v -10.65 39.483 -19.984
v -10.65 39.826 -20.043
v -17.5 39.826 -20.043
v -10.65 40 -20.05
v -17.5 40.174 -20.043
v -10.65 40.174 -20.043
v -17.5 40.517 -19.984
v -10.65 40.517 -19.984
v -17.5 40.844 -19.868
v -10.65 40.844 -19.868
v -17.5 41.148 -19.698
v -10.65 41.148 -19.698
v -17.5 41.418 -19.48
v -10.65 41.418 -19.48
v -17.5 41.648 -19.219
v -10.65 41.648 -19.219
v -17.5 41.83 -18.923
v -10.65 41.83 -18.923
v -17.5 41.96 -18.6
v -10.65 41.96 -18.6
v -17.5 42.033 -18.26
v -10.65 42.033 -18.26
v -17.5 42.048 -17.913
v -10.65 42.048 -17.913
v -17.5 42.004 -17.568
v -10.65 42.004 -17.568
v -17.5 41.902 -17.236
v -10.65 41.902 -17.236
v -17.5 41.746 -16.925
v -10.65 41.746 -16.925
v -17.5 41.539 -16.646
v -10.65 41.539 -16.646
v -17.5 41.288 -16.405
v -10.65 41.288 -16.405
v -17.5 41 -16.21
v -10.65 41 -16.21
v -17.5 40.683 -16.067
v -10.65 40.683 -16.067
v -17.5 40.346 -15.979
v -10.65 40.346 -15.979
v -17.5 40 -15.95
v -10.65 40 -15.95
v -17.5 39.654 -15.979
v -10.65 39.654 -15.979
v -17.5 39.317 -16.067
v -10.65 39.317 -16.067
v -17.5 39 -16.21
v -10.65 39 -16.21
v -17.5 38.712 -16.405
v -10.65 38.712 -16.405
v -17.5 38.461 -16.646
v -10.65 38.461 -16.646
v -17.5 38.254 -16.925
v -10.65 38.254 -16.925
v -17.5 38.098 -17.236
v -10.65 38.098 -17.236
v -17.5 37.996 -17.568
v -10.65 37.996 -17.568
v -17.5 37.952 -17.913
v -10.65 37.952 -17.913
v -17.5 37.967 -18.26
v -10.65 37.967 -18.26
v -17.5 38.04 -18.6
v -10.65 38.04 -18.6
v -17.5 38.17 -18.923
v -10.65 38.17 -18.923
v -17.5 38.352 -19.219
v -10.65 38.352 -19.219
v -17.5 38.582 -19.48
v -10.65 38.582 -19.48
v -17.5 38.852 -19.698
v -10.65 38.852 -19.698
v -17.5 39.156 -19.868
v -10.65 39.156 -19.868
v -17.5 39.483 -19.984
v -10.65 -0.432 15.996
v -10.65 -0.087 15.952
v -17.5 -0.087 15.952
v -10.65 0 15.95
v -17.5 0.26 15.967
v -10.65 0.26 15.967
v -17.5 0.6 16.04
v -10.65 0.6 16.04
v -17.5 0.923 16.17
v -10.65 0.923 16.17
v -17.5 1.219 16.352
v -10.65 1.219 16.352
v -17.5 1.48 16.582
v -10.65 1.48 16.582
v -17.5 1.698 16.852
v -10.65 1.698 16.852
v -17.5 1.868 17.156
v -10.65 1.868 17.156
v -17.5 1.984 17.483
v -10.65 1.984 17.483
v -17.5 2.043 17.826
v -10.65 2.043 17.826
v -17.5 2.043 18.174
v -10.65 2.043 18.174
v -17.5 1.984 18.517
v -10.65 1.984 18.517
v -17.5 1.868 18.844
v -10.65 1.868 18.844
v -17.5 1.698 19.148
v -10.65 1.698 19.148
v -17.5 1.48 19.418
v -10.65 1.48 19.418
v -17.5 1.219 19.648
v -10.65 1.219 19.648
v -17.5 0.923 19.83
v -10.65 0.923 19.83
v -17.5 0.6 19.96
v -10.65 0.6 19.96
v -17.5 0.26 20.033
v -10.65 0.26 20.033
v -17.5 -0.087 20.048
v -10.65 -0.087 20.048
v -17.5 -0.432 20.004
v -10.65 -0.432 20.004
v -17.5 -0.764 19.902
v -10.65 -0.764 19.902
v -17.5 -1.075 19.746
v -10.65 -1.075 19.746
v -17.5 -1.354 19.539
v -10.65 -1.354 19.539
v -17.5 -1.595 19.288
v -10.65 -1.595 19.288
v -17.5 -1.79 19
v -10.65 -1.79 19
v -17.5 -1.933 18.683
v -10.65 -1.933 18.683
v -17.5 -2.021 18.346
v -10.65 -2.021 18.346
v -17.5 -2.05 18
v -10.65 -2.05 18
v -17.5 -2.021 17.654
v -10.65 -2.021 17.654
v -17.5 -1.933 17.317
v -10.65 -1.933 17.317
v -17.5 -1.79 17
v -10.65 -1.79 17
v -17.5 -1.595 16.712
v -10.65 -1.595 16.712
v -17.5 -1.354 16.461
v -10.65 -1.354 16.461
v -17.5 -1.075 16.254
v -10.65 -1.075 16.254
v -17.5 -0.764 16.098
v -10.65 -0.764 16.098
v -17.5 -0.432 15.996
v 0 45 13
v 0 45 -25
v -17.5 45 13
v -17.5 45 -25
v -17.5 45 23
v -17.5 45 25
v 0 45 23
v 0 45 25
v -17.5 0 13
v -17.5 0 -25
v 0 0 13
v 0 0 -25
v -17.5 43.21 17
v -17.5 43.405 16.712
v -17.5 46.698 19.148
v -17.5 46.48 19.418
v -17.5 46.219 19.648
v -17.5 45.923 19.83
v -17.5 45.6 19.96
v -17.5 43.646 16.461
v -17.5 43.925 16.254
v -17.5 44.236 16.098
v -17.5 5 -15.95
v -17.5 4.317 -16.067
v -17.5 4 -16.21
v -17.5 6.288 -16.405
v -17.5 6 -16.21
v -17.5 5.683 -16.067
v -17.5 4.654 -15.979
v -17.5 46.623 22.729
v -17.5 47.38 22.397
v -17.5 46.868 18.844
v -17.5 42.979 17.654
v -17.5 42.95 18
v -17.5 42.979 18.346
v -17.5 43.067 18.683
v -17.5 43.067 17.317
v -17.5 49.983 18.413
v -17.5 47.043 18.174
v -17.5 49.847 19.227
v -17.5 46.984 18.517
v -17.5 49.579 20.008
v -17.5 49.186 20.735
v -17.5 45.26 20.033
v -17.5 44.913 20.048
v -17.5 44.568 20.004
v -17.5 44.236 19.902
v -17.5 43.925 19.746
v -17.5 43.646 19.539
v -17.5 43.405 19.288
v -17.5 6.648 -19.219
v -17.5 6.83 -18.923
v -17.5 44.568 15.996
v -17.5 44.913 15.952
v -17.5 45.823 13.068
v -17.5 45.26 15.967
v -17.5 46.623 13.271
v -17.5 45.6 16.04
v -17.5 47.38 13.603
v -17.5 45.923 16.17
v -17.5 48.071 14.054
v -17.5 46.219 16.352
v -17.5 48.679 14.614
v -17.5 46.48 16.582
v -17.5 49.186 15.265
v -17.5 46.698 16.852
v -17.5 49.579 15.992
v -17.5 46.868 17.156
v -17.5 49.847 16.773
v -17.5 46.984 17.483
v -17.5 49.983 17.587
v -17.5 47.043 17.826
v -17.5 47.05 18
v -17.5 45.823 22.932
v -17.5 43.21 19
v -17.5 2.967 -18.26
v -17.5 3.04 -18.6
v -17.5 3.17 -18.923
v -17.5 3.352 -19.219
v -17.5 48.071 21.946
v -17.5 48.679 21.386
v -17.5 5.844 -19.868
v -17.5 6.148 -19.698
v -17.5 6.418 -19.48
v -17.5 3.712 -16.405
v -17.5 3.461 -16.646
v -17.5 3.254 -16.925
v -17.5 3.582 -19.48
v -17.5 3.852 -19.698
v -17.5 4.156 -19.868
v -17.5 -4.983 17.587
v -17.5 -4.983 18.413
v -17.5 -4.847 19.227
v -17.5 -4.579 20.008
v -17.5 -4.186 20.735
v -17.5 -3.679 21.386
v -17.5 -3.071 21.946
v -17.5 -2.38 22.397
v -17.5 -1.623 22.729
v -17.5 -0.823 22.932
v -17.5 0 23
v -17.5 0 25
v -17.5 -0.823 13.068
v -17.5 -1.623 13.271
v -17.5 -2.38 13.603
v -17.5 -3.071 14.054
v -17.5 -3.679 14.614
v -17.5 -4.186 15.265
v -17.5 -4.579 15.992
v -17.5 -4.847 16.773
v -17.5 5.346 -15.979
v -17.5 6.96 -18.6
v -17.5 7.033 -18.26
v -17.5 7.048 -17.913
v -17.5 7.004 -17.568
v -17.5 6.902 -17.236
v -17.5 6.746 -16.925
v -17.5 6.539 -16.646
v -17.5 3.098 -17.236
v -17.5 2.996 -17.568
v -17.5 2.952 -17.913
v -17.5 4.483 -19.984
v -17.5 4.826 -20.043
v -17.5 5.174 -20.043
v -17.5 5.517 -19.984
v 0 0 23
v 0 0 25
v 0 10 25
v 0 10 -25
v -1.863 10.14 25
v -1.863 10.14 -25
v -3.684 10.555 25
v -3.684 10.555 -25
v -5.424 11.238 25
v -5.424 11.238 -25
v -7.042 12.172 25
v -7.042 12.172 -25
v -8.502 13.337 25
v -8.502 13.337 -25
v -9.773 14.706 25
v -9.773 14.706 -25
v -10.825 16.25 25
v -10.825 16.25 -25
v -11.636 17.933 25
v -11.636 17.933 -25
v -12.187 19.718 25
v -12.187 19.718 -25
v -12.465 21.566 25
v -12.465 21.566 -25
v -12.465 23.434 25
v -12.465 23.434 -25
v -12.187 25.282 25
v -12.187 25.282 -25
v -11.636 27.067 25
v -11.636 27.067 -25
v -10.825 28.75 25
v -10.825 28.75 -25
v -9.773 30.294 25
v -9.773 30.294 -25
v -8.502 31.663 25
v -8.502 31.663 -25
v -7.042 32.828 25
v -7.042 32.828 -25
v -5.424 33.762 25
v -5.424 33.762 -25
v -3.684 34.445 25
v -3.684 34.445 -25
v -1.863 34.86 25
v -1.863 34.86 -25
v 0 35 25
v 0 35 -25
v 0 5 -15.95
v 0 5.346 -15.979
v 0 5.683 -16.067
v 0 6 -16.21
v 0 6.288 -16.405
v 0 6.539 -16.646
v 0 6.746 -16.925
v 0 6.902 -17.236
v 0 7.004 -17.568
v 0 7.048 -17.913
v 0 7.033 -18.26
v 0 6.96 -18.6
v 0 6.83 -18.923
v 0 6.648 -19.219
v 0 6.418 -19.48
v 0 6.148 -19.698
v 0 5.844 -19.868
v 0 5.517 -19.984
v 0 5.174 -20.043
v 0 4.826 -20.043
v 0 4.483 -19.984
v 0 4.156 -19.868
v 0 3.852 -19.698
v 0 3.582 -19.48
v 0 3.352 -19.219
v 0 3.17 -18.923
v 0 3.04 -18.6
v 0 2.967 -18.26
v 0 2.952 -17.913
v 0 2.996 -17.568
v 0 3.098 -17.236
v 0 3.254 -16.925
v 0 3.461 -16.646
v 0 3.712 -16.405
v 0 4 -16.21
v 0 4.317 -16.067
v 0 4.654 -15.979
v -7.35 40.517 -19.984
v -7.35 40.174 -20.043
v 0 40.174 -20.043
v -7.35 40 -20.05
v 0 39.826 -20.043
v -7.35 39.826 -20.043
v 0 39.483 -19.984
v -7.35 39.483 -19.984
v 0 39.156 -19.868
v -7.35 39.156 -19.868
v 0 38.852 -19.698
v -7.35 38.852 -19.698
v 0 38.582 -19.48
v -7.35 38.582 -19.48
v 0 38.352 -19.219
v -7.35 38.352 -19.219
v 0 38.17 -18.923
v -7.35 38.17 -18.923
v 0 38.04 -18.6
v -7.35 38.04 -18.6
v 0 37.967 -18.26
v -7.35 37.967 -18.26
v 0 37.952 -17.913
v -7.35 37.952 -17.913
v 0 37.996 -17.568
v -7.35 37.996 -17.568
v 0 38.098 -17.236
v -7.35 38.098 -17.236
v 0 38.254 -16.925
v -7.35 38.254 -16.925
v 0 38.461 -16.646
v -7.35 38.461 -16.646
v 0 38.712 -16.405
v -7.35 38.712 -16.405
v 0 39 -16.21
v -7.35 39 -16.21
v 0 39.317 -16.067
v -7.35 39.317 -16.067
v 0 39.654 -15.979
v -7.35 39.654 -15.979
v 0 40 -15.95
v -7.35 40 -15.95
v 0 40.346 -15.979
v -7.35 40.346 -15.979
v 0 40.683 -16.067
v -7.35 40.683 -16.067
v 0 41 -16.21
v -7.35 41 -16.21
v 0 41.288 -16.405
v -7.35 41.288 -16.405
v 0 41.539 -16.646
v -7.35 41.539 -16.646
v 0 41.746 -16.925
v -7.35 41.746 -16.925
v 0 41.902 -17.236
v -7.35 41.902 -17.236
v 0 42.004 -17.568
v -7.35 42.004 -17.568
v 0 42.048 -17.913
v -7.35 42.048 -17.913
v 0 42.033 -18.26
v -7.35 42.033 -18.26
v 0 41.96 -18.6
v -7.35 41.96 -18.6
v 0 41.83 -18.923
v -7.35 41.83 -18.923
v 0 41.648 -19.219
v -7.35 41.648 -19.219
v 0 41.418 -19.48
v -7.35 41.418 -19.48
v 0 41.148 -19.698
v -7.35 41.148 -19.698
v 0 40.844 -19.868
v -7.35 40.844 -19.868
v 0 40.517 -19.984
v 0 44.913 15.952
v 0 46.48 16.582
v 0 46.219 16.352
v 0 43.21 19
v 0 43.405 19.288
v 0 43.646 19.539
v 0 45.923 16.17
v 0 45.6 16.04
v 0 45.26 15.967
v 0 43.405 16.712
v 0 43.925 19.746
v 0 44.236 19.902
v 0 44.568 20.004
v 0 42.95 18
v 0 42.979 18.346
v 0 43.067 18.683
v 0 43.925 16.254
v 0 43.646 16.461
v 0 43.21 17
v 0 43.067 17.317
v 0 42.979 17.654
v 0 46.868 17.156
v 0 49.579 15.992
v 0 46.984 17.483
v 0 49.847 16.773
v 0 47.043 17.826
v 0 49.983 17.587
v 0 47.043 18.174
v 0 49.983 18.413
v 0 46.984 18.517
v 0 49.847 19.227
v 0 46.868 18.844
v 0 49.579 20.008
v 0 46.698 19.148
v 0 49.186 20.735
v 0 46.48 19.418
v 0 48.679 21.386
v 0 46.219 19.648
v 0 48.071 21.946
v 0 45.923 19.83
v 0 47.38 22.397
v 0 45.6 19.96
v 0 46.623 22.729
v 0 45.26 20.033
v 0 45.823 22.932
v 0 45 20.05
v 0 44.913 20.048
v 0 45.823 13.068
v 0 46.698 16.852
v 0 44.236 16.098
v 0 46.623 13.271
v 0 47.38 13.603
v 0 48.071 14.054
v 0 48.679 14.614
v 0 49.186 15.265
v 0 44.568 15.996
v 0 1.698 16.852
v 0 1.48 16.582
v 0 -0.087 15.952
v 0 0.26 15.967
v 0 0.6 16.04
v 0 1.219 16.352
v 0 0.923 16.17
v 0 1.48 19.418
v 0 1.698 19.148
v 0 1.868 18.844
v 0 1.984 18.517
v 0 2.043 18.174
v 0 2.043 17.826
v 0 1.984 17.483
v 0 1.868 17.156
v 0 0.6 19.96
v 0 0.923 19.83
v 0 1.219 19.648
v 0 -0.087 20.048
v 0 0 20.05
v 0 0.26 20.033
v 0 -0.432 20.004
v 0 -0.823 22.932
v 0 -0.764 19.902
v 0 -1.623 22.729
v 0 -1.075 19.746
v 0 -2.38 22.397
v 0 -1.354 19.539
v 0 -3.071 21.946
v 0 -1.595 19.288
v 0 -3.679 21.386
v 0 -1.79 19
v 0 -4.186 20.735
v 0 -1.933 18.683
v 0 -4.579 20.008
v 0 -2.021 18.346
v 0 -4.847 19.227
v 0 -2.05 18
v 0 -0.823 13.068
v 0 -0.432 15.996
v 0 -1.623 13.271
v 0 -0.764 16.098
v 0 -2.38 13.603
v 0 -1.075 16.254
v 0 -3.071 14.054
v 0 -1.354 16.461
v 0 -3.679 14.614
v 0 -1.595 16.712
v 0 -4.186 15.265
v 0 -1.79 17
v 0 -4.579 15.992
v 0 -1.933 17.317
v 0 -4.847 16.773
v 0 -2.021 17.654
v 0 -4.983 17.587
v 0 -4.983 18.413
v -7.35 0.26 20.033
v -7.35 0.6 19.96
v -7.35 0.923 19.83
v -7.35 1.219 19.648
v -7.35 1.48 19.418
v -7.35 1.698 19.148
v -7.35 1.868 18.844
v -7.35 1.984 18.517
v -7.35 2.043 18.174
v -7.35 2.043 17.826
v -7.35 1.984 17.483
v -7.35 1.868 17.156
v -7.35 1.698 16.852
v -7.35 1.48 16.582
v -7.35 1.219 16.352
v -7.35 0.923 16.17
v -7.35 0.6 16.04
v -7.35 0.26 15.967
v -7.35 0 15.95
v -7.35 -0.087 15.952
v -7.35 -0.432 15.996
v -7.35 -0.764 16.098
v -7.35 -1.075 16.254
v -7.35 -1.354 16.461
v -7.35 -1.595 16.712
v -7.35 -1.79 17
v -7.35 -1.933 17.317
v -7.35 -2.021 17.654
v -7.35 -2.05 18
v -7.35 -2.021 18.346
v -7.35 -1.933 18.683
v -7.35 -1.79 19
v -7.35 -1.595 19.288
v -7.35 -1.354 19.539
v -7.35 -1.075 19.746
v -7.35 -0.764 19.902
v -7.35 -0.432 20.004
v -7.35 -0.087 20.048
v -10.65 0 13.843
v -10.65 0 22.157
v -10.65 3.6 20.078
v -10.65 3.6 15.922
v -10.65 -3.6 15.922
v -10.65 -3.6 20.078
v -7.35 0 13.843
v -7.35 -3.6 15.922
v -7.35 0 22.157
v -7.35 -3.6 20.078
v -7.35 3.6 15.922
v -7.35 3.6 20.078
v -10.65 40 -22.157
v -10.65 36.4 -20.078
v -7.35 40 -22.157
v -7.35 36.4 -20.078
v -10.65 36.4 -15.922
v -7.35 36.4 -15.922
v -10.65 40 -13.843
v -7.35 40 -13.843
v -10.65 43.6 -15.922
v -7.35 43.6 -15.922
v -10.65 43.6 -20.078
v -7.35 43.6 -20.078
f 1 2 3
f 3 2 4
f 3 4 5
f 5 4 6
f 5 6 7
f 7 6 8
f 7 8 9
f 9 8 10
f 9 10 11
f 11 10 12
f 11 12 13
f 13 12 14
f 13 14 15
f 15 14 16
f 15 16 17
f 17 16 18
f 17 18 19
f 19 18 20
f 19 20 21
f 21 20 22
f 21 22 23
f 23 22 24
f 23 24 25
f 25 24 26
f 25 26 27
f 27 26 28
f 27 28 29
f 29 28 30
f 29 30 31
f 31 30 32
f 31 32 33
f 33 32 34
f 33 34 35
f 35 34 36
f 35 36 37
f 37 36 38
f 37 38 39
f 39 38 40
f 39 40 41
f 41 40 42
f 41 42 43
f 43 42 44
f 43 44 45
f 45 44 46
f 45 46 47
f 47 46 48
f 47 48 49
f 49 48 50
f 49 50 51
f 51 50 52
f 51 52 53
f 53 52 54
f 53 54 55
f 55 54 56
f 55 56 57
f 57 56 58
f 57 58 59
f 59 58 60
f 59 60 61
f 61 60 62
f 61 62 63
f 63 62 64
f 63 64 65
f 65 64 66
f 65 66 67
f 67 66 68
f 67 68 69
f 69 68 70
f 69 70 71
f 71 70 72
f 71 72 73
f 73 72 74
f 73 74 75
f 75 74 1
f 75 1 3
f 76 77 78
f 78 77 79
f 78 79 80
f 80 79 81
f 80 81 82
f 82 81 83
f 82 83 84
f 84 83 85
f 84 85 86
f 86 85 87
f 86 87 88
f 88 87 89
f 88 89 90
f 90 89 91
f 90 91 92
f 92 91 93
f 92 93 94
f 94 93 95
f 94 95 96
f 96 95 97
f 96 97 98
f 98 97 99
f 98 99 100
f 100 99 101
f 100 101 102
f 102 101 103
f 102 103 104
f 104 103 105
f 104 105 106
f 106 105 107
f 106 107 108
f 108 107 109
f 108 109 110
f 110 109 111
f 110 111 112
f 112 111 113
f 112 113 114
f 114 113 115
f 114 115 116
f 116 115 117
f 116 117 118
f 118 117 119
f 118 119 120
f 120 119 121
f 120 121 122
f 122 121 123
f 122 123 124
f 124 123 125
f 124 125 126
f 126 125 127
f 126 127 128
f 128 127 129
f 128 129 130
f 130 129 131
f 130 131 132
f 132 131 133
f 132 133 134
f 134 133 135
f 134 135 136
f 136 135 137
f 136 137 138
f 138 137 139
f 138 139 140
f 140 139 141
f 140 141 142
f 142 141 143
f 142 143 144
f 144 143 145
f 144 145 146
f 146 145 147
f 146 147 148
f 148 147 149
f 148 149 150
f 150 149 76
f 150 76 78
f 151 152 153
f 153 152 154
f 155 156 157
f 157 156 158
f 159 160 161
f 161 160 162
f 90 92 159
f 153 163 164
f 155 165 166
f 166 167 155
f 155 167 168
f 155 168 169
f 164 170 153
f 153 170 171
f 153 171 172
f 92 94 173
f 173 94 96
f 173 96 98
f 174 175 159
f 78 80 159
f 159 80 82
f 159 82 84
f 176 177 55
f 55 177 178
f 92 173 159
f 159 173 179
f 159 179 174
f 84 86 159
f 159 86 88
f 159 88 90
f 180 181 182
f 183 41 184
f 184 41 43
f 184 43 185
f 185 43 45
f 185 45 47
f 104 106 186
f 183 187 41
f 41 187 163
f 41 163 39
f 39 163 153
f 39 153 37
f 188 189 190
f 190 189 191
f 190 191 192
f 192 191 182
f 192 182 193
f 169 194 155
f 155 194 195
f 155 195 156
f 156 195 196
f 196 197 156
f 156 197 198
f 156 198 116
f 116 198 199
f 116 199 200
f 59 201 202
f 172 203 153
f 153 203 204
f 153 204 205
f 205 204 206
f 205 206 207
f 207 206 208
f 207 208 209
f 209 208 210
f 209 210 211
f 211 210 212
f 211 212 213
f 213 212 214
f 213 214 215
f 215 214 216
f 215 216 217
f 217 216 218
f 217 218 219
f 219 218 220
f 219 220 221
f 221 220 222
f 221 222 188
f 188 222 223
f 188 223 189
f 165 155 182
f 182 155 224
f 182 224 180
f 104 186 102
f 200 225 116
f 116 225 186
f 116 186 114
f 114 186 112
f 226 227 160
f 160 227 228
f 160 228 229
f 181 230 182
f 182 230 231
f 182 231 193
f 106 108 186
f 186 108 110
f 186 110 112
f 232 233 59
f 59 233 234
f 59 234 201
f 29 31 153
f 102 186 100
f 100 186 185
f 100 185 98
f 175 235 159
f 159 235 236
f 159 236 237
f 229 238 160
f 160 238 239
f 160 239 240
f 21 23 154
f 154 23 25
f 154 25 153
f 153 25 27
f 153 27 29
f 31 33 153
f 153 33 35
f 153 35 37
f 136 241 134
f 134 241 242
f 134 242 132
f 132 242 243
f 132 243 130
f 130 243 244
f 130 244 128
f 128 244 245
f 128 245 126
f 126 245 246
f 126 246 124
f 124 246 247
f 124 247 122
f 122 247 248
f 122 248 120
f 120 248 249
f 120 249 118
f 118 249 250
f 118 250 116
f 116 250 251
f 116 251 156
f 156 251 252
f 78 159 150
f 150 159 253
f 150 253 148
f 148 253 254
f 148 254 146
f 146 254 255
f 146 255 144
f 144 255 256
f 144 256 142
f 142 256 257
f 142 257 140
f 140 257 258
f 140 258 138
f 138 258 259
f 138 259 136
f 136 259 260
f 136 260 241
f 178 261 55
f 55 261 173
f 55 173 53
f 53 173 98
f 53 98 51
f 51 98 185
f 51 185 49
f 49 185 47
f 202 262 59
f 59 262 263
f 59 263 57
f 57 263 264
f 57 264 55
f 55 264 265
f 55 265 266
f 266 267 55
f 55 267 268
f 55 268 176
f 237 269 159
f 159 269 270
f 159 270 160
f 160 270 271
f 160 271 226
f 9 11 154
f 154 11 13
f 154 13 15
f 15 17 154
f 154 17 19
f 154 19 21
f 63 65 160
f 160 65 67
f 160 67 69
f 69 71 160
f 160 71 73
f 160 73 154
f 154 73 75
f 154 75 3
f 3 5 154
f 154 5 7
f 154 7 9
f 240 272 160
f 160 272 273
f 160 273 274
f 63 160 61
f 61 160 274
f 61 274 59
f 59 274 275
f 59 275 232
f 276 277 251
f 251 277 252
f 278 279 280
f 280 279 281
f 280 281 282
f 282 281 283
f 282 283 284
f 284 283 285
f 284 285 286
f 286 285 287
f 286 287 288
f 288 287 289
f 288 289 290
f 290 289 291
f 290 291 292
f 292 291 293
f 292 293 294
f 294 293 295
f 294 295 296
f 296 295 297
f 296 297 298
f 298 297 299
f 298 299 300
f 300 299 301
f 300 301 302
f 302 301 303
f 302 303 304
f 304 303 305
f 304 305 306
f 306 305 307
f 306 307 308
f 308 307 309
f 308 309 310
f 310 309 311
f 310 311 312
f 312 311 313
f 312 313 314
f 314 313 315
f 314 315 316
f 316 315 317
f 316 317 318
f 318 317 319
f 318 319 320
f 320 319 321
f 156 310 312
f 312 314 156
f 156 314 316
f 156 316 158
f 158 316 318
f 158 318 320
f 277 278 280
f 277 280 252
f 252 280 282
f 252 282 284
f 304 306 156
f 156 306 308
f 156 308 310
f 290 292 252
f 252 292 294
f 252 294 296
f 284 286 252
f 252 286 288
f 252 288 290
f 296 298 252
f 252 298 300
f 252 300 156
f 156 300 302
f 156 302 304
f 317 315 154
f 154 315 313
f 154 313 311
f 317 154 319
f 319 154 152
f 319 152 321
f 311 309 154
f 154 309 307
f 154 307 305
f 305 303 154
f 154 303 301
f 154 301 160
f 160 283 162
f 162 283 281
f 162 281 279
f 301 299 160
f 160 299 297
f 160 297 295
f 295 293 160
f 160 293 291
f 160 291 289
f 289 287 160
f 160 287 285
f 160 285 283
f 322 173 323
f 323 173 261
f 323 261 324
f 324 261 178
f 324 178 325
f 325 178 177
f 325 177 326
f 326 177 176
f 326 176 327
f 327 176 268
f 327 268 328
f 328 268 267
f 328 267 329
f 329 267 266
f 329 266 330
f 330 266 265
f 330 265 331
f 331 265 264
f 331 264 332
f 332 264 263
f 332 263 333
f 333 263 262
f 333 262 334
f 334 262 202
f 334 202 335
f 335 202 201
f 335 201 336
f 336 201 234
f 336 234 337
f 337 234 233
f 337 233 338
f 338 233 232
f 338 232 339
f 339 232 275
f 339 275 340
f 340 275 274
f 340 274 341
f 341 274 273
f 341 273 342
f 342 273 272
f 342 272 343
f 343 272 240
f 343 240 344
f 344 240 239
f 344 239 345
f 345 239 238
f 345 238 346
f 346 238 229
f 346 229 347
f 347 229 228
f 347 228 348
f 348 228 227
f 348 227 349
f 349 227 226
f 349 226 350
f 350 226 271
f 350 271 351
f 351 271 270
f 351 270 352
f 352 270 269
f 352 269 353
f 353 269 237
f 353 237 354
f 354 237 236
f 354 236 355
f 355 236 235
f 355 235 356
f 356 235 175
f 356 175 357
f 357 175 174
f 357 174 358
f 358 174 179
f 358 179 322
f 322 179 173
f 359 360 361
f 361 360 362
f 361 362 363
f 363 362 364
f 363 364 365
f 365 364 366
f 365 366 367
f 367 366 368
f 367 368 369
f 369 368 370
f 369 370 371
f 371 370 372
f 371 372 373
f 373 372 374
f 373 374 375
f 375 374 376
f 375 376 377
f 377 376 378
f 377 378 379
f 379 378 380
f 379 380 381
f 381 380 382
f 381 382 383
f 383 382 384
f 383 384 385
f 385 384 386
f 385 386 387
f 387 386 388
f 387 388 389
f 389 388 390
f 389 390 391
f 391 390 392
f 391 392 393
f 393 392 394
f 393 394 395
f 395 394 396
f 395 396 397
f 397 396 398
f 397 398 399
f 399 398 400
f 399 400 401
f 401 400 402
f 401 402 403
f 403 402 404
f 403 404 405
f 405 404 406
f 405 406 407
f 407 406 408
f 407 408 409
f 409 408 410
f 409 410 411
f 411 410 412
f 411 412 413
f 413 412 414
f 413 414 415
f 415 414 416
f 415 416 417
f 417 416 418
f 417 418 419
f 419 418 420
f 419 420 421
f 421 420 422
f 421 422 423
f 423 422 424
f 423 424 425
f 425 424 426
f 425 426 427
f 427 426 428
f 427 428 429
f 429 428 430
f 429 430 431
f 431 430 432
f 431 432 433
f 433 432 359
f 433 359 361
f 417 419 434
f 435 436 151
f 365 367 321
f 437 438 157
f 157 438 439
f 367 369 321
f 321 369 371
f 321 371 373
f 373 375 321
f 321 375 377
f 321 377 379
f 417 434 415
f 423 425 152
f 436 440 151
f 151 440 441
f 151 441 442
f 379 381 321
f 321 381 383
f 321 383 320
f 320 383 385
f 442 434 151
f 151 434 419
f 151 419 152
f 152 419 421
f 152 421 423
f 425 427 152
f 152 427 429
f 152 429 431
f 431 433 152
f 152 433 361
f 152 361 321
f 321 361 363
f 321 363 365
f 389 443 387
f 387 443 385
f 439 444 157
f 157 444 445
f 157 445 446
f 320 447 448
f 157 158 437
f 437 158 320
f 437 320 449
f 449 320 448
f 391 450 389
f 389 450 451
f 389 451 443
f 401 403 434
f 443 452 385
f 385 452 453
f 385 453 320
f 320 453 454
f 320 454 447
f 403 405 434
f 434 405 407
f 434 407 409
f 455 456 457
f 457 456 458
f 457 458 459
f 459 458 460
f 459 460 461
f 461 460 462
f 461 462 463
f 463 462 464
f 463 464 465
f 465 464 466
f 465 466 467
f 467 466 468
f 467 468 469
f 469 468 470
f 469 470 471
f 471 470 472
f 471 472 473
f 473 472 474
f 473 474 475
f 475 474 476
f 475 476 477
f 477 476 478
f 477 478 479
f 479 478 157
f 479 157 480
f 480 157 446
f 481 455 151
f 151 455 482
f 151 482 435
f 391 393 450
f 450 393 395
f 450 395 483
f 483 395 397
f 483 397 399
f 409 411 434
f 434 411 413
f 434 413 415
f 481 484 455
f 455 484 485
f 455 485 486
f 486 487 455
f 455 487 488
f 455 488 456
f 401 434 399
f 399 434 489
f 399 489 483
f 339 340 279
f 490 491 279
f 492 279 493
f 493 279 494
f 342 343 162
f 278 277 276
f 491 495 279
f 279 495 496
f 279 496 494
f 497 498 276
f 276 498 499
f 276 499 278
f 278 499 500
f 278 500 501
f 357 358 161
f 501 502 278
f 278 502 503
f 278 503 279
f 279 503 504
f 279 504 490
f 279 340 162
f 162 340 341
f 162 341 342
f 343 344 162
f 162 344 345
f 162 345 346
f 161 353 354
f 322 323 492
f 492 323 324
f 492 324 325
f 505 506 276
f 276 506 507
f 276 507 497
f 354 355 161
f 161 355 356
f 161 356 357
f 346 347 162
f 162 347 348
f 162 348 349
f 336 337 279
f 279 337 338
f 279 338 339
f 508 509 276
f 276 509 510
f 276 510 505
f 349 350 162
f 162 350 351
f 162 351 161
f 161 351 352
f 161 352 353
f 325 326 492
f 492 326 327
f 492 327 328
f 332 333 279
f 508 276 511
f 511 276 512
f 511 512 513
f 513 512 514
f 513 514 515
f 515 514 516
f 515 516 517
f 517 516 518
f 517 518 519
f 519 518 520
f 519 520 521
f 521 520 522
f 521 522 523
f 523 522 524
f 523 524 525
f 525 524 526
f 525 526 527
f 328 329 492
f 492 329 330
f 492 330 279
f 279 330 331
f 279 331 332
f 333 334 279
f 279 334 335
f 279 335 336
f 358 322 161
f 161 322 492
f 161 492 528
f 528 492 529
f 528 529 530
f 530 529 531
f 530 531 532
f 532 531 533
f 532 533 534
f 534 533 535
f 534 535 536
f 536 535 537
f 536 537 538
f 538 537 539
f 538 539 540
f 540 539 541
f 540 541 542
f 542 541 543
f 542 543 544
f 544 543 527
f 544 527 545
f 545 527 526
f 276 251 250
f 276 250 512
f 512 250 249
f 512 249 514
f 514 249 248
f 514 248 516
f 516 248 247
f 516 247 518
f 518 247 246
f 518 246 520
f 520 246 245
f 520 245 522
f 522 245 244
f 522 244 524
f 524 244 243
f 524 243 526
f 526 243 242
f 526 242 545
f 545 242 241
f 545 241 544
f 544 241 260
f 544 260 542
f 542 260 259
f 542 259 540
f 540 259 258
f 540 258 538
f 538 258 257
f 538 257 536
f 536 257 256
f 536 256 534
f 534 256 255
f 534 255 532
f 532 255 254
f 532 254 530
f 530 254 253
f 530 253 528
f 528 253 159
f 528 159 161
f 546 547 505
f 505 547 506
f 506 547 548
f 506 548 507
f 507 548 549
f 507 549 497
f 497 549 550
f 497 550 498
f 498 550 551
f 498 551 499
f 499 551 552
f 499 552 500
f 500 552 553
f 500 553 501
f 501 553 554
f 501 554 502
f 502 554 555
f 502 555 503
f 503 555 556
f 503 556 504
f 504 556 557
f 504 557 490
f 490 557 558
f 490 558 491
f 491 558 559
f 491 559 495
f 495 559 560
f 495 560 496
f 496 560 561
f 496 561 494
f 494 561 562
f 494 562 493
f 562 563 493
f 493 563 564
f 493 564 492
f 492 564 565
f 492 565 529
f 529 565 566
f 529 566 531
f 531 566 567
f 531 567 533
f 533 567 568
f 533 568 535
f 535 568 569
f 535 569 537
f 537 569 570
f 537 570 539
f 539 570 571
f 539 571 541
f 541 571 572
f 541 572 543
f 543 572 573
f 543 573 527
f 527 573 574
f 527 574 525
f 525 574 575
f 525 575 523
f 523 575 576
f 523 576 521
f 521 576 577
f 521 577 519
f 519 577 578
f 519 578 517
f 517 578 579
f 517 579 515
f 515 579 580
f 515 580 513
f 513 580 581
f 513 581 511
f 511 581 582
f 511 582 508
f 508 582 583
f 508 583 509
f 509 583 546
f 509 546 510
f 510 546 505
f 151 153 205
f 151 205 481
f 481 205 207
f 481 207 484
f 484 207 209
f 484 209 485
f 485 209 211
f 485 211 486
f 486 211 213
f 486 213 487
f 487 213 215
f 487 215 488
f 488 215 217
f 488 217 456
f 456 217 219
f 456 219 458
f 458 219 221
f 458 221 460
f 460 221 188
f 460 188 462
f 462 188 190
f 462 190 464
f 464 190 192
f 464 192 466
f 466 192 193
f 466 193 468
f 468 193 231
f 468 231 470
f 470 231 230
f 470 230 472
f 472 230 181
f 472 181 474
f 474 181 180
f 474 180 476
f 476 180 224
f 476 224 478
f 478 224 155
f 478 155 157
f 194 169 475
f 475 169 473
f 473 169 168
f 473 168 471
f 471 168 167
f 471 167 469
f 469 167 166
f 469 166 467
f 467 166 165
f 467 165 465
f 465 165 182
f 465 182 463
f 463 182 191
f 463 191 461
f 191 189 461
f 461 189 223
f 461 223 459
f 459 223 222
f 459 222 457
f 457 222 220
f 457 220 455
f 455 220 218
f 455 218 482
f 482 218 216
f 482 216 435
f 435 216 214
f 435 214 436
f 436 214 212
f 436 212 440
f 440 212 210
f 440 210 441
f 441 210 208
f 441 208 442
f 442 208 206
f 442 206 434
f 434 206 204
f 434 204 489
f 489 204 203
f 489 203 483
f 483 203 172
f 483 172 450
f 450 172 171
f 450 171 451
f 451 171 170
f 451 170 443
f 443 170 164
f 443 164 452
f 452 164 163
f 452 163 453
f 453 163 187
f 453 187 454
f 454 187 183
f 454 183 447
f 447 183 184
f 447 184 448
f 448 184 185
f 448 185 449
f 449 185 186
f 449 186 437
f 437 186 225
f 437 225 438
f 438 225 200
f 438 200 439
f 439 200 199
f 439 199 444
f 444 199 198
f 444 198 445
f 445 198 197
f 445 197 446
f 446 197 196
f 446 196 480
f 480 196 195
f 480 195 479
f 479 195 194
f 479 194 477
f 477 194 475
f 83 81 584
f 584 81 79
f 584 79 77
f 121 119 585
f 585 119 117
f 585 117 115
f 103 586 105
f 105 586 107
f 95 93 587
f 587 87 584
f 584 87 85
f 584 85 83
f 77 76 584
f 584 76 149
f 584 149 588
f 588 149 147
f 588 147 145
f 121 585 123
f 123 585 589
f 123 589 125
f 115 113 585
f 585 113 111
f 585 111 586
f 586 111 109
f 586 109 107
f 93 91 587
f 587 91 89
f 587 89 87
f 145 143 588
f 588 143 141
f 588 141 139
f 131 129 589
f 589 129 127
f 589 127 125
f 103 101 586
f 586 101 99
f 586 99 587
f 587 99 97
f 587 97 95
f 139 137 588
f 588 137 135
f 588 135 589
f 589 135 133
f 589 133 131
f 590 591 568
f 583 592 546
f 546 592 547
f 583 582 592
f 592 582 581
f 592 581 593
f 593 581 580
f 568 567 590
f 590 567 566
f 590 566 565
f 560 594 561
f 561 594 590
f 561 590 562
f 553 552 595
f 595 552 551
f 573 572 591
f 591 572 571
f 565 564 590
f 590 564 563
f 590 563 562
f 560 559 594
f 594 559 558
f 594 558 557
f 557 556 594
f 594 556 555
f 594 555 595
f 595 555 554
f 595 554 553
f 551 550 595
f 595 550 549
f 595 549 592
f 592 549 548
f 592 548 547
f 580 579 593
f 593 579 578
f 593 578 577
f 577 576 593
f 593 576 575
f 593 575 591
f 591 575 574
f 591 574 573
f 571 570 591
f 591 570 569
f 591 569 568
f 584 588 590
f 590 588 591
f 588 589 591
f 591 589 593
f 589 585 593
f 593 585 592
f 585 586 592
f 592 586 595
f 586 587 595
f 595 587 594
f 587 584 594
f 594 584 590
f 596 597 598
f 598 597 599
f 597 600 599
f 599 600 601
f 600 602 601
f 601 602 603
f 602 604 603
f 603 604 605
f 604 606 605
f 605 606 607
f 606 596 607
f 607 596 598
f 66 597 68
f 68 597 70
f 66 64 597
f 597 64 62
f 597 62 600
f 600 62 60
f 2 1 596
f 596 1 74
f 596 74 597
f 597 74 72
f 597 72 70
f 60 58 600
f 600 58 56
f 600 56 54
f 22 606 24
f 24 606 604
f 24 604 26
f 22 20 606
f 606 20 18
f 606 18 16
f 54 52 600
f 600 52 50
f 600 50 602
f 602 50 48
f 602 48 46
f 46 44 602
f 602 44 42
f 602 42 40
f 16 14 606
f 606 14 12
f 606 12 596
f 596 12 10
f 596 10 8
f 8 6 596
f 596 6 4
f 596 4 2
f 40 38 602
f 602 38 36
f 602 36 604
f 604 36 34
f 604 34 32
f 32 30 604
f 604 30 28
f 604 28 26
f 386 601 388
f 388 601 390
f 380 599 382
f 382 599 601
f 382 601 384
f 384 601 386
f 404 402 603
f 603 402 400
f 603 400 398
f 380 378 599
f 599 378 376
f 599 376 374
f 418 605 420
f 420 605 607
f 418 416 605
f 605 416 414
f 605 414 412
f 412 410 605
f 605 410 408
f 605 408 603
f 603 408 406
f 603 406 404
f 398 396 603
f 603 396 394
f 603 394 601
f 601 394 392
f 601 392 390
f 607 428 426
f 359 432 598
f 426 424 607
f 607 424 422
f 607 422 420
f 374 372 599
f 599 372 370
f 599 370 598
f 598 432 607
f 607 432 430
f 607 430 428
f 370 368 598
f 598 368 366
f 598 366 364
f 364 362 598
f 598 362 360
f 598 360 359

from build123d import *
from build123d.topology import SkipClean

# Parameters (mm, degrees)
BOSS_EXTRUDE1_DEPTH             = 25
BOSS_EXTRUDE2_REACH             = 65.362
BOSS_EXTRUDE2_DIRECTION_2_DEPTH = 30
SKETCH9_R                       = 2.05
CUT_EXTRUDE3_DEPTH              = 35
BOSS_EXTRUDE5_REACH             = 63.601
SKETCH13_R                      = 1.55
CUT_EXTRUDE4_DEPTH              = 88.693844753
SKETCH16_W                      = 63
SKETCH16_H                      = 45
CUT_EXTRUDE5_DEPTH              = 65.196143
BOSS_EXTRUDE6_DEPTH             = 17.5
SKETCH18_R                      = 2.05
CUT_EXTRUDE6_DEPTH              = 17.5
CUT_EXTRUDE7_START              = -7.35
CUT_EXTRUDE7_DEPTH              = 3.3


with BuildPart() as part:
    # Sketch1 → Boss-Extrude1 (new, symmetric)
    with BuildSketch(Plane.XY):
        with BuildLine():
            Line((-17.5, 22.5), (-17.5, 0))
            Line((-17.5, 0), (17.5, 0))
            Line((17.5, 0), (17.5, 22.5))
            Line((17.5, 22.5), (12.5, 22.5))
            ThreePointArc((12.5, 22.5), (0, 10), (-12.5, 22.5))
            Line((-12.5, 22.5), (-17.5, 22.5))
        make_face()
    boss_extrude1 = extrude(amount=BOSS_EXTRUDE1_DEPTH, both=True)

    # Boss-Extrude2: up to this face of the body (flat: up to its plane)
    boss_extrude2_end = Plane(part.part.faces().sort_by_distance((17.5, 11.25, 0))[0])
    # Sketch5 → Boss-Extrude2 (add, up to the picked face)
    with BuildSketch(Plane(origin=(26.115381057, 0, 15.077722283), x_dir=(0.500000000000001, 0, -0.8660254037844382), z_dir=(0.8660254037844382, 0, 0.500000000000001)), mode=Mode.PRIVATE) as boss_extrude2_sk1:
        with BuildLine():
            Line((-8.7, 22.5), (-3.75, 22.5))
            ThreePointArc((-3.75, 22.5), (8.75, 10), (21.25, 22.5))
            Line((21.25, 22.5), (26.2, 22.5))
            ThreePointArc((26.2, 22.5), (8.75, 5.05), (-8.7, 22.5))
        make_face()
    boss_extrude2_tool1 = split(extrude(boss_extrude2_sk1.sketch, amount=-BOSS_EXTRUDE2_REACH, mode=Mode.PRIVATE), bisect_by=boss_extrude2_end, keep=Keep.BOTH, mode=Mode.PRIVATE)
    boss_extrude2 = boss_extrude2_tool1.solids().sort_by(Axis((23.002881, 22.109806, 20.46873), (-0.8660254037844382, 0, -0.500000000000001)))[0]
    add(boss_extrude2)

    # Sketch5 → Boss-Extrude2 direction 2 (add)
    with BuildSketch(Plane(origin=(26.115381057, 0, 15.077722283), x_dir=(0.500000000000001, 0, -0.8660254037844382), z_dir=(0.8660254037844382, 0, 0.500000000000001))):
        with BuildLine():
            Line((-8.7, 22.5), (-3.75, 22.5))
            ThreePointArc((-3.75, 22.5), (8.75, 10), (21.25, 22.5))
            Line((21.25, 22.5), (26.2, 22.5))
            ThreePointArc((26.2, 22.5), (8.75, 5.05), (-8.7, 22.5))
        make_face()
    boss_extrude2_direction_2 = extrude(amount=BOSS_EXTRUDE2_DIRECTION_2_DEPTH)

    # Sketch9 → Cut-Extrude3 (cut)
    with BuildSketch(Plane.ZY.offset(17.5)):
        with Locations((-18, 5)):
            Circle(SKETCH9_R)
    cut_extrude3 = extrude(amount=-CUT_EXTRUDE3_DEPTH, mode=Mode.SUBTRACT)

    # Boss-Extrude5: up to this face of the body (flat: up to its plane)
    boss_extrude5_end = Plane(part.part.faces().sort_by_distance((17.5, 17.19483523, 0))[0])
    # Sketch12 → Boss-Extrude5 (add, up to the picked face)
    with BuildSketch(Plane(origin=(21.973076211, 0, 12.686161466), x_dir=(0.4999999999999999, 0, -0.8660254037844388), z_dir=(0.8660254037844388, 0, 0.4999999999999999)), mode=Mode.PRIVATE) as boss_extrude5_sk1:
        with BuildLine():
            Line((-3.75, 22.5), (21.25, 22.5))
            ThreePointArc((21.25, 22.5), (8.75, 10), (-3.75, 22.5))
        make_face()
    boss_extrude5_tool1 = split(extrude(boss_extrude5_sk1.sketch, amount=-BOSS_EXTRUDE5_REACH, mode=Mode.PRIVATE), bisect_by=boss_extrude5_end, keep=Keep.BOTH, mode=Mode.PRIVATE)
    boss_extrude5 = boss_extrude5_tool1.solids().sort_by(Axis((26.348076, 17.194835, 5.108439), (-0.8660254037844388, 0, -0.4999999999999999)))[0]
    add(boss_extrude5)

    # Mirror1: Boss-Extrude1, Boss-Extrude2, Boss-Extrude2 direction 2, Cut-Extrude3, Boss-Extrude5 across plane
    with SkipClean():  # the faces are left unmerged after this step: merging them gives an invalid solid
        add(boss_extrude1.mirror(Plane(origin=(17.5, 22.5, 25), x_dir=(0, 0, 1), z_dir=(0, -1, 0))))
        add(boss_extrude2.mirror(Plane(origin=(17.5, 22.5, 25), x_dir=(0, 0, 1), z_dir=(0, -1, 0))))
        add(boss_extrude2_direction_2.mirror(Plane(origin=(17.5, 22.5, 25), x_dir=(0, 0, 1), z_dir=(0, -1, 0))))
        add(cut_extrude3.mirror(Plane(origin=(17.5, 22.5, 25), x_dir=(0, 0, 1), z_dir=(0, -1, 0))), mode=Mode.SUBTRACT)
        add(boss_extrude5.mirror(Plane(origin=(17.5, 22.5, 25), x_dir=(0, 0, 1), z_dir=(0, -1, 0))))

    # Sketch13 → Cut-Extrude4 (cut, through all)
    with SkipClean():  # the faces are left unmerged after this step: merging them gives an invalid solid
        with BuildSketch(Plane(origin=(0, 0, 0), x_dir=(1, 0, 0), z_dir=(0, 1, 0))):
            with Locations(Location((43.480762114, -15, 0), (0, 0, 90))):
                Circle(SKETCH13_R)
        extrude(amount=CUT_EXTRUDE4_DEPTH, mode=Mode.SUBTRACT)

    # Sketch16 → Cut-Extrude5 (cut)
    with BuildSketch(Plane(origin=(0, 0, 0), x_dir=(0, 0, -1), z_dir=(1, 0, 0))):
        with Locations((-6.5, 22.5)):
            Rectangle(SKETCH16_W, SKETCH16_H)
    extrude(amount=CUT_EXTRUDE5_DEPTH, mode=Mode.SUBTRACT)

    # Sketch17 → Boss-Extrude6 (add)
    with BuildSketch(Plane.ZY.offset(17.5)):
        with BuildLine():
            Line((13, 0), (23, 0))
            ThreePointArc((23, 0), (18, -5), (13, 0))
        make_face()
    boss_extrude6 = extrude(amount=-BOSS_EXTRUDE6_DEPTH)

    # Sketch18 → Cut-Extrude6 (cut)
    with BuildSketch(Plane.ZY.offset(17.5)):
        with Locations(Location((18, 0, 0), (0, 0, 270))):
            Circle(SKETCH18_R)
    cut_extrude6 = extrude(amount=-CUT_EXTRUDE6_DEPTH, mode=Mode.SUBTRACT)

    # Mirror2: Boss-Extrude6, Cut-Extrude6 across plane
    add(boss_extrude6.mirror(Plane.ZX.offset(22.5)))
    add(cut_extrude6.mirror(Plane.ZX.offset(22.5)), mode=Mode.SUBTRACT)

    # Sketch20 → Cut-Extrude7 (cut)
    with BuildSketch(Plane(origin=(0, 0, 0), x_dir=(0, 0, -1), z_dir=(1, 0, 0)).offset(CUT_EXTRUDE7_START)):
        Polygon((22.156921938, 40), (20.078460969, 43.6), (15.921539031, 43.6), (13.843078062, 40), (15.921539031, 36.4), (20.078460969, 36.4), align=None)
        Polygon((-13.843078062, 0), (-15.921539031, 3.6), (-20.078460969, 3.6), (-22.156921938, 0), (-20.078460969, -3.6), (-15.921539031, -3.6), align=None)
    extrude(amount=-CUT_EXTRUDE7_DEPTH, mode=Mode.SUBTRACT)


solid = part.part
